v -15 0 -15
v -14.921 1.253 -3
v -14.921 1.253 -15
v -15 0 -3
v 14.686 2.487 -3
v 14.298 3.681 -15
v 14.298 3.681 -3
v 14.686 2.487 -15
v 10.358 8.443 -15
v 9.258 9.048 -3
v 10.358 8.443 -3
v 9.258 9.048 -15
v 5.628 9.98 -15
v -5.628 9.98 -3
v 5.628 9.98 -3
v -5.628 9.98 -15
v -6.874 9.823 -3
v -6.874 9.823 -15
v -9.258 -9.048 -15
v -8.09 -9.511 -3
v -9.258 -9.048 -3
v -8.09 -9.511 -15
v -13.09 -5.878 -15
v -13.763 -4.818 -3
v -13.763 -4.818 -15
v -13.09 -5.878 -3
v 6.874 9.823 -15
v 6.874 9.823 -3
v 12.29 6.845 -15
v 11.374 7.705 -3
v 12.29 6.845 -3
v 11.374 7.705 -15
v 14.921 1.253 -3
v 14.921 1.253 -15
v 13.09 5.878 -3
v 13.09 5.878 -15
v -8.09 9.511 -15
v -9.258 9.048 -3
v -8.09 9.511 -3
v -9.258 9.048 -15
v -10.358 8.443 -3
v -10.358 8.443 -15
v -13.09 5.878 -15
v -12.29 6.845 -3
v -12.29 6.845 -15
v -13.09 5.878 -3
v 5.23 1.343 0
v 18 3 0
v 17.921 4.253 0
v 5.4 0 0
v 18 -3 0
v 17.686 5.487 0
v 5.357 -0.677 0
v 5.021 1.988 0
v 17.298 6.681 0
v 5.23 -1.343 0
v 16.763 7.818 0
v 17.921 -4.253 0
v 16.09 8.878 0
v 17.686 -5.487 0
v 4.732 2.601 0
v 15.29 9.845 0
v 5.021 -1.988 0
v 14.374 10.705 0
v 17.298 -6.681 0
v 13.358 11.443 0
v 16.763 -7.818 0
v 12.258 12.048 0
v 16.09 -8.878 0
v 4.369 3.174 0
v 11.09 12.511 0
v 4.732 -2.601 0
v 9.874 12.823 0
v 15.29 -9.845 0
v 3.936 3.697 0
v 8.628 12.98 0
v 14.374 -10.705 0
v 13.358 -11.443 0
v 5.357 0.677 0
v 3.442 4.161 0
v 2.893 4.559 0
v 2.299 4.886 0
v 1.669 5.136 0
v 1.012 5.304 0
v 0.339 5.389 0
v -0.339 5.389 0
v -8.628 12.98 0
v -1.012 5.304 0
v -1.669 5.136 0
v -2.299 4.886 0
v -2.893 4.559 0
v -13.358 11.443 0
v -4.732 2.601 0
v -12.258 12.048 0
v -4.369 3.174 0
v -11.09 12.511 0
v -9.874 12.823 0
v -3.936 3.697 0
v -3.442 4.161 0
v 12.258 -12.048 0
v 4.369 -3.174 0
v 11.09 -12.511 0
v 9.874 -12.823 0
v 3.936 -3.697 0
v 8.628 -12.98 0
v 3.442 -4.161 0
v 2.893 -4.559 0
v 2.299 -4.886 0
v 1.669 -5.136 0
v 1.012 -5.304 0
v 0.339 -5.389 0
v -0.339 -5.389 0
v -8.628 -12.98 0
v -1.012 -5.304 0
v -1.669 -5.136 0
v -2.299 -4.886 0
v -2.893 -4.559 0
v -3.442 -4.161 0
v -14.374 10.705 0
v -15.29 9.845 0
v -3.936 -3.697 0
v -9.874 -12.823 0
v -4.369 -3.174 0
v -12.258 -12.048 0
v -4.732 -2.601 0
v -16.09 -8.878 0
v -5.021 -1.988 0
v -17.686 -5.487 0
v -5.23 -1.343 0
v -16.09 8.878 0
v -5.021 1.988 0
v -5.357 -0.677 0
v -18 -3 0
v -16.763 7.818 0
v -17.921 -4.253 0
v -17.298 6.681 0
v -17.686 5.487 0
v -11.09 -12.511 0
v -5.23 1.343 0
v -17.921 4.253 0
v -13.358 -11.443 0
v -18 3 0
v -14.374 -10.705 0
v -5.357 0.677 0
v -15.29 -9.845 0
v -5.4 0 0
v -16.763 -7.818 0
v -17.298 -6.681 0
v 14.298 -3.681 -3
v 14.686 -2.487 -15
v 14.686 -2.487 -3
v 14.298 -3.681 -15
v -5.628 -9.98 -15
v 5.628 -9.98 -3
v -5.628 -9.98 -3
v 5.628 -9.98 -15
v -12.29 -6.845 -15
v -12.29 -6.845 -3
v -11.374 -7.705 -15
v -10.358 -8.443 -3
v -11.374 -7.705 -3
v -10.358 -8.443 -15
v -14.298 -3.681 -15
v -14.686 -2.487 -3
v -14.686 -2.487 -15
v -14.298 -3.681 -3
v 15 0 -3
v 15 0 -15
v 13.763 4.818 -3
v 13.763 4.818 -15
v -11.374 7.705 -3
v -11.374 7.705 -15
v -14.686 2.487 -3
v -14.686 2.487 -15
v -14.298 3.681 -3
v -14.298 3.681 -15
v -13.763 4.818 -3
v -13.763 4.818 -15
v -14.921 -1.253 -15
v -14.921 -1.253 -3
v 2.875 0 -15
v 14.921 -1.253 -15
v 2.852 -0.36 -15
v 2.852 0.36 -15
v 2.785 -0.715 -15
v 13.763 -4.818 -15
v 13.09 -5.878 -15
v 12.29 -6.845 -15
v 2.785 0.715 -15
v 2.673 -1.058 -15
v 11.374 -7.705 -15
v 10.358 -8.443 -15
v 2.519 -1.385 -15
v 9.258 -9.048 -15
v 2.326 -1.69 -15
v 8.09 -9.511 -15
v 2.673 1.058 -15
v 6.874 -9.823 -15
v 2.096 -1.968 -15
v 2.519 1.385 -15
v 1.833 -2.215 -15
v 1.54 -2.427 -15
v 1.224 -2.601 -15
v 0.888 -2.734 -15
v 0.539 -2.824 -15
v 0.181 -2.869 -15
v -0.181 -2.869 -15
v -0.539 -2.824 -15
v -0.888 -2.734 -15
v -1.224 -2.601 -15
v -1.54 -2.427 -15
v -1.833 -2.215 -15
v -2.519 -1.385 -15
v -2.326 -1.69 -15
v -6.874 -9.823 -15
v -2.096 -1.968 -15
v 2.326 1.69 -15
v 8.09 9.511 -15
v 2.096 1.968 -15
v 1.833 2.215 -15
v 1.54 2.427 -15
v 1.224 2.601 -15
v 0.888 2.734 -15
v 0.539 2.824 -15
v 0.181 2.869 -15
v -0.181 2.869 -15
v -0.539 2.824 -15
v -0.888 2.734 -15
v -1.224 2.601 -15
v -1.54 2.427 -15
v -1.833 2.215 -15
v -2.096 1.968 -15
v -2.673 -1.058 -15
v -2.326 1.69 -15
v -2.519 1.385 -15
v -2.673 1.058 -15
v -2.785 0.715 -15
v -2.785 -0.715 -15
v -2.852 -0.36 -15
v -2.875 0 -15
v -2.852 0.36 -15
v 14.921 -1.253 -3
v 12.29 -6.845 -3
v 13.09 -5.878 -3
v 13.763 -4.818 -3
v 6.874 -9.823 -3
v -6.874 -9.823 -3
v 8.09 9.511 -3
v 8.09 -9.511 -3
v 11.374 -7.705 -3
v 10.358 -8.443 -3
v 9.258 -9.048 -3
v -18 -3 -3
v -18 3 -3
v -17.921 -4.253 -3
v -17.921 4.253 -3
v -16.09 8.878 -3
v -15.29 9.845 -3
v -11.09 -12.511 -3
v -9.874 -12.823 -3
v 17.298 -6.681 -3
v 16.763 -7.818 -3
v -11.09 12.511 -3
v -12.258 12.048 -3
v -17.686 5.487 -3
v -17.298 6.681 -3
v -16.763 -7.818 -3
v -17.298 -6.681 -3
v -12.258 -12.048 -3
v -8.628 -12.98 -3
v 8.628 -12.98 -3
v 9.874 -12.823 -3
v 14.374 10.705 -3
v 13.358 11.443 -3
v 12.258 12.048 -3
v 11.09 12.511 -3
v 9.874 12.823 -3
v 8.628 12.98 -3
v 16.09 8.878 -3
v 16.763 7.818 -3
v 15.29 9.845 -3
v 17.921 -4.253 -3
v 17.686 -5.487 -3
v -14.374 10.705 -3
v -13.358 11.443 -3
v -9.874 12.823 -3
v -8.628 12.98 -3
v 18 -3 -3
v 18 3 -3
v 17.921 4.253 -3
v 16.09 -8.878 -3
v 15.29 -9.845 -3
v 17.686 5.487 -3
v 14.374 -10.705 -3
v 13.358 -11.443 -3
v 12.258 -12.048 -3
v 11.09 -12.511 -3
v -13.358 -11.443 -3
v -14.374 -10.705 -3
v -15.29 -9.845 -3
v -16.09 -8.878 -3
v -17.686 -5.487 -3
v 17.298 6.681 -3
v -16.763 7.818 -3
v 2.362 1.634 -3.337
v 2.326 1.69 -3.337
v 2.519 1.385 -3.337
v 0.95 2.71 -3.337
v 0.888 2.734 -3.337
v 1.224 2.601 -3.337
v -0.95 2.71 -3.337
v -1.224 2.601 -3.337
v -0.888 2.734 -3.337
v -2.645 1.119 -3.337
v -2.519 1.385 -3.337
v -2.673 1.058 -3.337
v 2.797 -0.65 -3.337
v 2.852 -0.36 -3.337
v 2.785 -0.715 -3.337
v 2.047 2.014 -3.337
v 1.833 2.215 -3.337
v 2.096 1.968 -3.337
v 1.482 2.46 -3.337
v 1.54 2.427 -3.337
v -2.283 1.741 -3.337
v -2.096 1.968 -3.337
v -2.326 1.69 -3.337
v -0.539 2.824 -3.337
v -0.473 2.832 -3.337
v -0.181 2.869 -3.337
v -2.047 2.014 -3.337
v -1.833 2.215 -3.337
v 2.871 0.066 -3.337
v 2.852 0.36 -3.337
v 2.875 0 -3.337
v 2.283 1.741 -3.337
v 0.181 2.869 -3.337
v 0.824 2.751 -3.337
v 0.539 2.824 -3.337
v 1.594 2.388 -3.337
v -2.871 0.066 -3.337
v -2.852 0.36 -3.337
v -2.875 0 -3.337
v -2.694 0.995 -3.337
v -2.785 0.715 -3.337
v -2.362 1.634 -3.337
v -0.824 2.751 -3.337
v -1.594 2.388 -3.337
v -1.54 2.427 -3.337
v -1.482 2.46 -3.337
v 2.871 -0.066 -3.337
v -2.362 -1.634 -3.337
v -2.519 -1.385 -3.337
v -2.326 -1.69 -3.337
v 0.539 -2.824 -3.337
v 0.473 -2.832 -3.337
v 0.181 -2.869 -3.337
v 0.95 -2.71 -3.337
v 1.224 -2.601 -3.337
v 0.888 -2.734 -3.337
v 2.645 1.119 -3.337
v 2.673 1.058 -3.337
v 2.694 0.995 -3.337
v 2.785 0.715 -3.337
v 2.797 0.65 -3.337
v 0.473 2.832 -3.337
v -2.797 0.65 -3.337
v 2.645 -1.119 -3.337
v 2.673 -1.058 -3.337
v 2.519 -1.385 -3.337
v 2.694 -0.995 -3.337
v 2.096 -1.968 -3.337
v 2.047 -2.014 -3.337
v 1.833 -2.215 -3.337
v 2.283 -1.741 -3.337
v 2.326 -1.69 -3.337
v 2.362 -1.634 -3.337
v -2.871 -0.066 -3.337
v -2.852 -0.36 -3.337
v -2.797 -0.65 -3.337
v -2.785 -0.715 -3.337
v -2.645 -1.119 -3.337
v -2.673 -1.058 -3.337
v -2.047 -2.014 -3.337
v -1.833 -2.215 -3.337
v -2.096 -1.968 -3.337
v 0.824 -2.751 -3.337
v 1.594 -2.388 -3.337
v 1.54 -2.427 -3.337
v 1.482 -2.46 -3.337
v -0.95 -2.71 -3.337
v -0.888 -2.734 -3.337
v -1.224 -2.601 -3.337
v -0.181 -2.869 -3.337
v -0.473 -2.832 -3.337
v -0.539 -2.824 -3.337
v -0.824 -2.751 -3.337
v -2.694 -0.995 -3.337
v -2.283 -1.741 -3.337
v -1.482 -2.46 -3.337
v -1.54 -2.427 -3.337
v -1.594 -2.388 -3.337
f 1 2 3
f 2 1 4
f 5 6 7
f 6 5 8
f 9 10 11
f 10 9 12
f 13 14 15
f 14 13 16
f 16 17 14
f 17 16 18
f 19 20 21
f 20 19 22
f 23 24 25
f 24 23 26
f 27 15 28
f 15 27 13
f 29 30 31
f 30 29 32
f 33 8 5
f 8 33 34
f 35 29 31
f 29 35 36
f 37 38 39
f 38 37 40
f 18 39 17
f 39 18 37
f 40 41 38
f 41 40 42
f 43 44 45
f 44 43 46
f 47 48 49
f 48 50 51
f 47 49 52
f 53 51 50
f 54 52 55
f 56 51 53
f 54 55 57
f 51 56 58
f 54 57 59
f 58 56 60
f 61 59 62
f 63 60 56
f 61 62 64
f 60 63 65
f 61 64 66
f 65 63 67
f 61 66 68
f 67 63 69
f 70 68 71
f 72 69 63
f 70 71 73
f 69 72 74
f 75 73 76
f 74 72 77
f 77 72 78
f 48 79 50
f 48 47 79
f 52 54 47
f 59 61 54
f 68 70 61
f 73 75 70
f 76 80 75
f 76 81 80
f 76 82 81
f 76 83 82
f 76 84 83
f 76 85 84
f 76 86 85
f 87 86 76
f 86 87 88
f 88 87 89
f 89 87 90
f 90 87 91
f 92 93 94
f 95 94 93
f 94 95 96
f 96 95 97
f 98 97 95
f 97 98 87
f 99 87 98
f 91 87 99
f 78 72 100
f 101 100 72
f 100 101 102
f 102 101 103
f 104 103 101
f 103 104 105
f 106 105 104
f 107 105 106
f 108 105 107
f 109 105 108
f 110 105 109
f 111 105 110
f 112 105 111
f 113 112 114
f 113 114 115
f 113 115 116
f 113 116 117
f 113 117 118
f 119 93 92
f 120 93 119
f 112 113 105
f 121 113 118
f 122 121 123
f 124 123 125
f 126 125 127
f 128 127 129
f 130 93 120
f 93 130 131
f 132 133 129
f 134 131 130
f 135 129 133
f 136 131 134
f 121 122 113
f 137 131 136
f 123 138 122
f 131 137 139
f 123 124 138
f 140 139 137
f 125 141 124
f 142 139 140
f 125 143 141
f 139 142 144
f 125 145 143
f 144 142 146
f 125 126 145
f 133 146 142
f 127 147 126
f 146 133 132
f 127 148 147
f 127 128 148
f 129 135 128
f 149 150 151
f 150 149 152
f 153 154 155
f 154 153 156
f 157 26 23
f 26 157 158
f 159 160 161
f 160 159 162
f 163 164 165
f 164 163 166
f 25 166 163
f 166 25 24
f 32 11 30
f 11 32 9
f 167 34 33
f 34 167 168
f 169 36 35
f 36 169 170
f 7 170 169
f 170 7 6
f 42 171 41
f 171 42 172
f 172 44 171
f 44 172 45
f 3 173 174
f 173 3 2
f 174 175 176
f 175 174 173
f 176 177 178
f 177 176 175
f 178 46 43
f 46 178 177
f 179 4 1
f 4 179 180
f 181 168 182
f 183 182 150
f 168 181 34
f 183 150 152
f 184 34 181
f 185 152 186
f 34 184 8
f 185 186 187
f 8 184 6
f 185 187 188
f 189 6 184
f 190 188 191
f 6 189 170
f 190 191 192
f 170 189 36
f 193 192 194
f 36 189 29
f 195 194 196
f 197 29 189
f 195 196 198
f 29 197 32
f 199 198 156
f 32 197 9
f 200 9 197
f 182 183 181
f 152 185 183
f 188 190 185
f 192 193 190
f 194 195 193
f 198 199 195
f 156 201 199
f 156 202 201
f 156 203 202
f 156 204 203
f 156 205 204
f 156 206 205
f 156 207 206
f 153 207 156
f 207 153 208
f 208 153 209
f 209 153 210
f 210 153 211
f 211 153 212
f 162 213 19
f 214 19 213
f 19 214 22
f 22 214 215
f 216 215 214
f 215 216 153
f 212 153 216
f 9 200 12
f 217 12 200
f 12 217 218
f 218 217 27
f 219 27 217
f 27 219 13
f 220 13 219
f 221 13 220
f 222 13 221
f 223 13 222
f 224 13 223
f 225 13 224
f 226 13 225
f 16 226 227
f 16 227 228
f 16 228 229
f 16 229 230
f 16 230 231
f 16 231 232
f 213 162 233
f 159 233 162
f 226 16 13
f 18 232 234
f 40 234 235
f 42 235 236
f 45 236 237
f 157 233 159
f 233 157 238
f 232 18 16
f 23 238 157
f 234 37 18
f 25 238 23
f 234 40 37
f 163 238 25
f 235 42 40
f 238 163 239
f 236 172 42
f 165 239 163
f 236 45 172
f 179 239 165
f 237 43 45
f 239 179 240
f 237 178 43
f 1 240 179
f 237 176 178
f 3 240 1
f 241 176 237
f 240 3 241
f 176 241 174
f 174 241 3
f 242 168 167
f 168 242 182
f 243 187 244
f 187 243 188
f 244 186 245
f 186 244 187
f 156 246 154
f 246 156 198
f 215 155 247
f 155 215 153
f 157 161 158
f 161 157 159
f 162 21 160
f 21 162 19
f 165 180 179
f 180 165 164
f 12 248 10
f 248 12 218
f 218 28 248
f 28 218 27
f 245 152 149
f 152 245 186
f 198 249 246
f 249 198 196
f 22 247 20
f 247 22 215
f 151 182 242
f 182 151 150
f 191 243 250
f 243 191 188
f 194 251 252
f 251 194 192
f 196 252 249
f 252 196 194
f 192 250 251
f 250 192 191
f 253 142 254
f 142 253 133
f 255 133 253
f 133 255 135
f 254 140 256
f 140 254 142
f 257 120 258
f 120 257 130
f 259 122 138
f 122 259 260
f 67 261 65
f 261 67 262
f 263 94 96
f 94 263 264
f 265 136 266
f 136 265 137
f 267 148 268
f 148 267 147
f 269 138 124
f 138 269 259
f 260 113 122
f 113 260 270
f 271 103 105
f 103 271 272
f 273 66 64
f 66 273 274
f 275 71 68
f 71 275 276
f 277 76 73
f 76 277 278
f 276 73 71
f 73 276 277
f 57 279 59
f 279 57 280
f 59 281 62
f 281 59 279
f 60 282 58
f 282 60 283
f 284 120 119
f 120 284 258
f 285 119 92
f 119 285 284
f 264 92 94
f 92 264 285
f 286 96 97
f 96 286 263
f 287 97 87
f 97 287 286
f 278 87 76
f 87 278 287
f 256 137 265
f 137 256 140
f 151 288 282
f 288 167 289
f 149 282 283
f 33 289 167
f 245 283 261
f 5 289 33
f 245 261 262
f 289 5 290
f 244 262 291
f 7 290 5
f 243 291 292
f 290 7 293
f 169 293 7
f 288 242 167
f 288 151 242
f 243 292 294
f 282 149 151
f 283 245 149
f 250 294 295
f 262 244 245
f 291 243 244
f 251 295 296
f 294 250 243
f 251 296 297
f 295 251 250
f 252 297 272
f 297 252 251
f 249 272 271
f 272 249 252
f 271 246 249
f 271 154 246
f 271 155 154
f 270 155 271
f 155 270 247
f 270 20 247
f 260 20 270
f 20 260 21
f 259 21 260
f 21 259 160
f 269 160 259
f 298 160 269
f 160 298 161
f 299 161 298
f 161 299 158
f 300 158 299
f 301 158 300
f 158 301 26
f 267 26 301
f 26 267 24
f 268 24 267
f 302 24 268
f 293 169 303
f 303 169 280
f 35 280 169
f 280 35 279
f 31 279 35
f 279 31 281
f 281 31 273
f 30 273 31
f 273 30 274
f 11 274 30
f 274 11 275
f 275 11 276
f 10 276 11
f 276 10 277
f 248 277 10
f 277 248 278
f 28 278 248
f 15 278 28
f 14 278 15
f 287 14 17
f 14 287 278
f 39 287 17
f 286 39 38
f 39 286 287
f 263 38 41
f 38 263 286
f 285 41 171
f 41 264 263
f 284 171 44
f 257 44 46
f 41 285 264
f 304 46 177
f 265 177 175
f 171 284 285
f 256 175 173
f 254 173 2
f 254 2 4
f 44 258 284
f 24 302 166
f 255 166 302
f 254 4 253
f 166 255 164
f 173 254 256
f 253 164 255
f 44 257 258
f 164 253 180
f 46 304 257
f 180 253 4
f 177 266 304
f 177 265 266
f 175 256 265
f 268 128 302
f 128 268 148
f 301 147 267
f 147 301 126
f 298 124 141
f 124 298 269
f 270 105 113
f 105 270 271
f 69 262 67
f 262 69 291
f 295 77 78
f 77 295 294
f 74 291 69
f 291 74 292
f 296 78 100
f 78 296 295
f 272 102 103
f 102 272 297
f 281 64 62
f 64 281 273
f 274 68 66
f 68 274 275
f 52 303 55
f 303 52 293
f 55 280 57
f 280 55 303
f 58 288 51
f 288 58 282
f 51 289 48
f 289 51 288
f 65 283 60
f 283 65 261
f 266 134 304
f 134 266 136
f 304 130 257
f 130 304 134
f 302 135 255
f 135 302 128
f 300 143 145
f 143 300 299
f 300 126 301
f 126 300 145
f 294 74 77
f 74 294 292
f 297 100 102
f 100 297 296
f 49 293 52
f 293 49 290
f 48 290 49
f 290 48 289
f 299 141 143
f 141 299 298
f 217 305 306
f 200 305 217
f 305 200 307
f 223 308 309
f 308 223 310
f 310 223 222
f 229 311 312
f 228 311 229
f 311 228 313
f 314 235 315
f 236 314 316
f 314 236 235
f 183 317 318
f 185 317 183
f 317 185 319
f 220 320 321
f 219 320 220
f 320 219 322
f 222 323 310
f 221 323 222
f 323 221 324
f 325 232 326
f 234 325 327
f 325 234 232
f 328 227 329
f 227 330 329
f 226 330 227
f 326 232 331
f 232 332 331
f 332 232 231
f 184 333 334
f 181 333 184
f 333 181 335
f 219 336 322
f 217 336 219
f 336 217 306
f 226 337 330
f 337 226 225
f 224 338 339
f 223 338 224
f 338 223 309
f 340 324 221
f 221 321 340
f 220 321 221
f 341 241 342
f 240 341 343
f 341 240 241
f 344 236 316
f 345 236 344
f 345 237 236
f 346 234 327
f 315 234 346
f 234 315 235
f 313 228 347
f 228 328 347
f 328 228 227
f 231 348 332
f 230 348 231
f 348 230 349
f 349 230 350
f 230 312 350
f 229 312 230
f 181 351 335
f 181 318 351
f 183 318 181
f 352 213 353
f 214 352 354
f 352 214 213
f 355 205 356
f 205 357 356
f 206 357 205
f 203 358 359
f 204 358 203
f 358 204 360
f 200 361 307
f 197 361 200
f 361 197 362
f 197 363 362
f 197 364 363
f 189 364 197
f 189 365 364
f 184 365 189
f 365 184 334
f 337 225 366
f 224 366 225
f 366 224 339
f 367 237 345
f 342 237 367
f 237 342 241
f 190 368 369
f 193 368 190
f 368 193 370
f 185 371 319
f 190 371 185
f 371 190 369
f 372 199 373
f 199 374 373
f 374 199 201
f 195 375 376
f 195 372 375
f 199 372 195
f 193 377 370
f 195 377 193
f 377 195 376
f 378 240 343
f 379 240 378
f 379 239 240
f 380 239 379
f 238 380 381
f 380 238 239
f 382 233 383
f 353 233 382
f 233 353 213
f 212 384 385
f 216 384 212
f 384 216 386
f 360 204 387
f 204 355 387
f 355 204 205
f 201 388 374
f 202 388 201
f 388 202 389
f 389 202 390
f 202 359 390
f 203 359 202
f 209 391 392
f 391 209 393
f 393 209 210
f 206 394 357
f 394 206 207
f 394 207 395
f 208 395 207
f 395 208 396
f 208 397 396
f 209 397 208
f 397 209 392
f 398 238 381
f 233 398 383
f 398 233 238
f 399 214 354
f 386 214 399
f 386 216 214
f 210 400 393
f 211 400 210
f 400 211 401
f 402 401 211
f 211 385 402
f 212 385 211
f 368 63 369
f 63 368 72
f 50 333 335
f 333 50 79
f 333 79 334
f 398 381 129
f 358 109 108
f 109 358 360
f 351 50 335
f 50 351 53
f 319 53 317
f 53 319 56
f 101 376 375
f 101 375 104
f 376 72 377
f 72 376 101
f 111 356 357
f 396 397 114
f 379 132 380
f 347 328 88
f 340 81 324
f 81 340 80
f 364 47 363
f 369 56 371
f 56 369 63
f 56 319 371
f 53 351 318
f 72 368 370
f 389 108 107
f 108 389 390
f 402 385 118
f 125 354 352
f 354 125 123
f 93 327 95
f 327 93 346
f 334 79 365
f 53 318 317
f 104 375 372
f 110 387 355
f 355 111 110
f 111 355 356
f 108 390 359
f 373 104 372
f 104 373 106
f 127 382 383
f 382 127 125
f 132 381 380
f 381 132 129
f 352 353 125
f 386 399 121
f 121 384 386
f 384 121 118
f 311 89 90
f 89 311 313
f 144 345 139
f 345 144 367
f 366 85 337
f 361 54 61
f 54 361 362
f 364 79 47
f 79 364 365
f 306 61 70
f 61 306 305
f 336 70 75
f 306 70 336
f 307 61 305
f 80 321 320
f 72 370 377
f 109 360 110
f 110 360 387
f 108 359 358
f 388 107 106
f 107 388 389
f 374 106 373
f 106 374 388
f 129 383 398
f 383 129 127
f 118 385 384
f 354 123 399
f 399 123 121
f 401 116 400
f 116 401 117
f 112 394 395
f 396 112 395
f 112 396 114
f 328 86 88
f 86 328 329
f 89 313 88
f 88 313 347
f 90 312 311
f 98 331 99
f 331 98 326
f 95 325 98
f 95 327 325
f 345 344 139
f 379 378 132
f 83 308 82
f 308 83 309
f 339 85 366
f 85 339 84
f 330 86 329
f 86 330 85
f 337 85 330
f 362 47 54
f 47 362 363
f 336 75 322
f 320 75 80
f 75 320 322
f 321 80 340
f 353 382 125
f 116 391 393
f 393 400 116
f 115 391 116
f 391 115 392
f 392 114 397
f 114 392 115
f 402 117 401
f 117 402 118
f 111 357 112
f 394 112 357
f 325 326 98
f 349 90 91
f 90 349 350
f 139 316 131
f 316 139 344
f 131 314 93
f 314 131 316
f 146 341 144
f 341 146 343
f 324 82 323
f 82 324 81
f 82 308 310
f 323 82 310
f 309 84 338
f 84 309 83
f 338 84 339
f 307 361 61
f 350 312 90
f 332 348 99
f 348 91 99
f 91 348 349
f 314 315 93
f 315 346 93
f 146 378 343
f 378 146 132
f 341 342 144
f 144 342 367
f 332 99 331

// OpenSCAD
$fn = 50;


difference() {
	union() {
		translate(v = [0, 0, -15]) {
			hull() {
				translate(v = [-5.0000000000, 0.0000000000, 0]) {
					cylinder(h = 15, r = 10.0000000000);
				}
				translate(v = [5.0000000000, 0.0000000000, 0]) {
					cylinder(h = 15, r = 10.0000000000);
				}
				translate(v = [-5.0000000000, -0.0000000000, 0]) {
					cylinder(h = 15, r = 10.0000000000);
				}
				translate(v = [5.0000000000, -0.0000000000, 0]) {
					cylinder(h = 15, r = 10.0000000000);
				}
			}
		}
		translate(v = [0, 0, -3]) {
			hull() {
				translate(v = [-8.0000000000, 3.0000000000, 0]) {
					cylinder(h = 3, r = 10.0000000000);
				}
				translate(v = [8.0000000000, 3.0000000000, 0]) {
					cylinder(h = 3, r = 10.0000000000);
				}
				translate(v = [-8.0000000000, -3.0000000000, 0]) {
					cylinder(h = 3, r = 10.0000000000);
				}
				translate(v = [8.0000000000, -3.0000000000, 0]) {
					cylinder(h = 3, r = 10.0000000000);
				}
			}
		}
	}
	union() {
		translate(v = [0, 0, 0]) {
			rotate(a = [0, 0, 0]) {
				difference() {
					union() {
						#translate(v = [0, 0, -15.0000000000]) {
							cylinder(h = 15, r = 2.6000000000);
						}
						#translate(v = [0, 0, -15.0000000000]) {
							cylinder(h = 15, r = 2.8750000000);
						}
						#translate(v = [0, 0, -3.7000000000]) {
							cylinder(h = 3.7000000000, r = 10.0000000000, r1 = 2.6000000000, r2 = 5.4000000000);
						}
						#translate(v = [0, 0, -15.0000000000]) {
							cylinder(h = 15, r = 2.6000000000);
						}
					}
					union();
				}
			}
		}
	}
}
